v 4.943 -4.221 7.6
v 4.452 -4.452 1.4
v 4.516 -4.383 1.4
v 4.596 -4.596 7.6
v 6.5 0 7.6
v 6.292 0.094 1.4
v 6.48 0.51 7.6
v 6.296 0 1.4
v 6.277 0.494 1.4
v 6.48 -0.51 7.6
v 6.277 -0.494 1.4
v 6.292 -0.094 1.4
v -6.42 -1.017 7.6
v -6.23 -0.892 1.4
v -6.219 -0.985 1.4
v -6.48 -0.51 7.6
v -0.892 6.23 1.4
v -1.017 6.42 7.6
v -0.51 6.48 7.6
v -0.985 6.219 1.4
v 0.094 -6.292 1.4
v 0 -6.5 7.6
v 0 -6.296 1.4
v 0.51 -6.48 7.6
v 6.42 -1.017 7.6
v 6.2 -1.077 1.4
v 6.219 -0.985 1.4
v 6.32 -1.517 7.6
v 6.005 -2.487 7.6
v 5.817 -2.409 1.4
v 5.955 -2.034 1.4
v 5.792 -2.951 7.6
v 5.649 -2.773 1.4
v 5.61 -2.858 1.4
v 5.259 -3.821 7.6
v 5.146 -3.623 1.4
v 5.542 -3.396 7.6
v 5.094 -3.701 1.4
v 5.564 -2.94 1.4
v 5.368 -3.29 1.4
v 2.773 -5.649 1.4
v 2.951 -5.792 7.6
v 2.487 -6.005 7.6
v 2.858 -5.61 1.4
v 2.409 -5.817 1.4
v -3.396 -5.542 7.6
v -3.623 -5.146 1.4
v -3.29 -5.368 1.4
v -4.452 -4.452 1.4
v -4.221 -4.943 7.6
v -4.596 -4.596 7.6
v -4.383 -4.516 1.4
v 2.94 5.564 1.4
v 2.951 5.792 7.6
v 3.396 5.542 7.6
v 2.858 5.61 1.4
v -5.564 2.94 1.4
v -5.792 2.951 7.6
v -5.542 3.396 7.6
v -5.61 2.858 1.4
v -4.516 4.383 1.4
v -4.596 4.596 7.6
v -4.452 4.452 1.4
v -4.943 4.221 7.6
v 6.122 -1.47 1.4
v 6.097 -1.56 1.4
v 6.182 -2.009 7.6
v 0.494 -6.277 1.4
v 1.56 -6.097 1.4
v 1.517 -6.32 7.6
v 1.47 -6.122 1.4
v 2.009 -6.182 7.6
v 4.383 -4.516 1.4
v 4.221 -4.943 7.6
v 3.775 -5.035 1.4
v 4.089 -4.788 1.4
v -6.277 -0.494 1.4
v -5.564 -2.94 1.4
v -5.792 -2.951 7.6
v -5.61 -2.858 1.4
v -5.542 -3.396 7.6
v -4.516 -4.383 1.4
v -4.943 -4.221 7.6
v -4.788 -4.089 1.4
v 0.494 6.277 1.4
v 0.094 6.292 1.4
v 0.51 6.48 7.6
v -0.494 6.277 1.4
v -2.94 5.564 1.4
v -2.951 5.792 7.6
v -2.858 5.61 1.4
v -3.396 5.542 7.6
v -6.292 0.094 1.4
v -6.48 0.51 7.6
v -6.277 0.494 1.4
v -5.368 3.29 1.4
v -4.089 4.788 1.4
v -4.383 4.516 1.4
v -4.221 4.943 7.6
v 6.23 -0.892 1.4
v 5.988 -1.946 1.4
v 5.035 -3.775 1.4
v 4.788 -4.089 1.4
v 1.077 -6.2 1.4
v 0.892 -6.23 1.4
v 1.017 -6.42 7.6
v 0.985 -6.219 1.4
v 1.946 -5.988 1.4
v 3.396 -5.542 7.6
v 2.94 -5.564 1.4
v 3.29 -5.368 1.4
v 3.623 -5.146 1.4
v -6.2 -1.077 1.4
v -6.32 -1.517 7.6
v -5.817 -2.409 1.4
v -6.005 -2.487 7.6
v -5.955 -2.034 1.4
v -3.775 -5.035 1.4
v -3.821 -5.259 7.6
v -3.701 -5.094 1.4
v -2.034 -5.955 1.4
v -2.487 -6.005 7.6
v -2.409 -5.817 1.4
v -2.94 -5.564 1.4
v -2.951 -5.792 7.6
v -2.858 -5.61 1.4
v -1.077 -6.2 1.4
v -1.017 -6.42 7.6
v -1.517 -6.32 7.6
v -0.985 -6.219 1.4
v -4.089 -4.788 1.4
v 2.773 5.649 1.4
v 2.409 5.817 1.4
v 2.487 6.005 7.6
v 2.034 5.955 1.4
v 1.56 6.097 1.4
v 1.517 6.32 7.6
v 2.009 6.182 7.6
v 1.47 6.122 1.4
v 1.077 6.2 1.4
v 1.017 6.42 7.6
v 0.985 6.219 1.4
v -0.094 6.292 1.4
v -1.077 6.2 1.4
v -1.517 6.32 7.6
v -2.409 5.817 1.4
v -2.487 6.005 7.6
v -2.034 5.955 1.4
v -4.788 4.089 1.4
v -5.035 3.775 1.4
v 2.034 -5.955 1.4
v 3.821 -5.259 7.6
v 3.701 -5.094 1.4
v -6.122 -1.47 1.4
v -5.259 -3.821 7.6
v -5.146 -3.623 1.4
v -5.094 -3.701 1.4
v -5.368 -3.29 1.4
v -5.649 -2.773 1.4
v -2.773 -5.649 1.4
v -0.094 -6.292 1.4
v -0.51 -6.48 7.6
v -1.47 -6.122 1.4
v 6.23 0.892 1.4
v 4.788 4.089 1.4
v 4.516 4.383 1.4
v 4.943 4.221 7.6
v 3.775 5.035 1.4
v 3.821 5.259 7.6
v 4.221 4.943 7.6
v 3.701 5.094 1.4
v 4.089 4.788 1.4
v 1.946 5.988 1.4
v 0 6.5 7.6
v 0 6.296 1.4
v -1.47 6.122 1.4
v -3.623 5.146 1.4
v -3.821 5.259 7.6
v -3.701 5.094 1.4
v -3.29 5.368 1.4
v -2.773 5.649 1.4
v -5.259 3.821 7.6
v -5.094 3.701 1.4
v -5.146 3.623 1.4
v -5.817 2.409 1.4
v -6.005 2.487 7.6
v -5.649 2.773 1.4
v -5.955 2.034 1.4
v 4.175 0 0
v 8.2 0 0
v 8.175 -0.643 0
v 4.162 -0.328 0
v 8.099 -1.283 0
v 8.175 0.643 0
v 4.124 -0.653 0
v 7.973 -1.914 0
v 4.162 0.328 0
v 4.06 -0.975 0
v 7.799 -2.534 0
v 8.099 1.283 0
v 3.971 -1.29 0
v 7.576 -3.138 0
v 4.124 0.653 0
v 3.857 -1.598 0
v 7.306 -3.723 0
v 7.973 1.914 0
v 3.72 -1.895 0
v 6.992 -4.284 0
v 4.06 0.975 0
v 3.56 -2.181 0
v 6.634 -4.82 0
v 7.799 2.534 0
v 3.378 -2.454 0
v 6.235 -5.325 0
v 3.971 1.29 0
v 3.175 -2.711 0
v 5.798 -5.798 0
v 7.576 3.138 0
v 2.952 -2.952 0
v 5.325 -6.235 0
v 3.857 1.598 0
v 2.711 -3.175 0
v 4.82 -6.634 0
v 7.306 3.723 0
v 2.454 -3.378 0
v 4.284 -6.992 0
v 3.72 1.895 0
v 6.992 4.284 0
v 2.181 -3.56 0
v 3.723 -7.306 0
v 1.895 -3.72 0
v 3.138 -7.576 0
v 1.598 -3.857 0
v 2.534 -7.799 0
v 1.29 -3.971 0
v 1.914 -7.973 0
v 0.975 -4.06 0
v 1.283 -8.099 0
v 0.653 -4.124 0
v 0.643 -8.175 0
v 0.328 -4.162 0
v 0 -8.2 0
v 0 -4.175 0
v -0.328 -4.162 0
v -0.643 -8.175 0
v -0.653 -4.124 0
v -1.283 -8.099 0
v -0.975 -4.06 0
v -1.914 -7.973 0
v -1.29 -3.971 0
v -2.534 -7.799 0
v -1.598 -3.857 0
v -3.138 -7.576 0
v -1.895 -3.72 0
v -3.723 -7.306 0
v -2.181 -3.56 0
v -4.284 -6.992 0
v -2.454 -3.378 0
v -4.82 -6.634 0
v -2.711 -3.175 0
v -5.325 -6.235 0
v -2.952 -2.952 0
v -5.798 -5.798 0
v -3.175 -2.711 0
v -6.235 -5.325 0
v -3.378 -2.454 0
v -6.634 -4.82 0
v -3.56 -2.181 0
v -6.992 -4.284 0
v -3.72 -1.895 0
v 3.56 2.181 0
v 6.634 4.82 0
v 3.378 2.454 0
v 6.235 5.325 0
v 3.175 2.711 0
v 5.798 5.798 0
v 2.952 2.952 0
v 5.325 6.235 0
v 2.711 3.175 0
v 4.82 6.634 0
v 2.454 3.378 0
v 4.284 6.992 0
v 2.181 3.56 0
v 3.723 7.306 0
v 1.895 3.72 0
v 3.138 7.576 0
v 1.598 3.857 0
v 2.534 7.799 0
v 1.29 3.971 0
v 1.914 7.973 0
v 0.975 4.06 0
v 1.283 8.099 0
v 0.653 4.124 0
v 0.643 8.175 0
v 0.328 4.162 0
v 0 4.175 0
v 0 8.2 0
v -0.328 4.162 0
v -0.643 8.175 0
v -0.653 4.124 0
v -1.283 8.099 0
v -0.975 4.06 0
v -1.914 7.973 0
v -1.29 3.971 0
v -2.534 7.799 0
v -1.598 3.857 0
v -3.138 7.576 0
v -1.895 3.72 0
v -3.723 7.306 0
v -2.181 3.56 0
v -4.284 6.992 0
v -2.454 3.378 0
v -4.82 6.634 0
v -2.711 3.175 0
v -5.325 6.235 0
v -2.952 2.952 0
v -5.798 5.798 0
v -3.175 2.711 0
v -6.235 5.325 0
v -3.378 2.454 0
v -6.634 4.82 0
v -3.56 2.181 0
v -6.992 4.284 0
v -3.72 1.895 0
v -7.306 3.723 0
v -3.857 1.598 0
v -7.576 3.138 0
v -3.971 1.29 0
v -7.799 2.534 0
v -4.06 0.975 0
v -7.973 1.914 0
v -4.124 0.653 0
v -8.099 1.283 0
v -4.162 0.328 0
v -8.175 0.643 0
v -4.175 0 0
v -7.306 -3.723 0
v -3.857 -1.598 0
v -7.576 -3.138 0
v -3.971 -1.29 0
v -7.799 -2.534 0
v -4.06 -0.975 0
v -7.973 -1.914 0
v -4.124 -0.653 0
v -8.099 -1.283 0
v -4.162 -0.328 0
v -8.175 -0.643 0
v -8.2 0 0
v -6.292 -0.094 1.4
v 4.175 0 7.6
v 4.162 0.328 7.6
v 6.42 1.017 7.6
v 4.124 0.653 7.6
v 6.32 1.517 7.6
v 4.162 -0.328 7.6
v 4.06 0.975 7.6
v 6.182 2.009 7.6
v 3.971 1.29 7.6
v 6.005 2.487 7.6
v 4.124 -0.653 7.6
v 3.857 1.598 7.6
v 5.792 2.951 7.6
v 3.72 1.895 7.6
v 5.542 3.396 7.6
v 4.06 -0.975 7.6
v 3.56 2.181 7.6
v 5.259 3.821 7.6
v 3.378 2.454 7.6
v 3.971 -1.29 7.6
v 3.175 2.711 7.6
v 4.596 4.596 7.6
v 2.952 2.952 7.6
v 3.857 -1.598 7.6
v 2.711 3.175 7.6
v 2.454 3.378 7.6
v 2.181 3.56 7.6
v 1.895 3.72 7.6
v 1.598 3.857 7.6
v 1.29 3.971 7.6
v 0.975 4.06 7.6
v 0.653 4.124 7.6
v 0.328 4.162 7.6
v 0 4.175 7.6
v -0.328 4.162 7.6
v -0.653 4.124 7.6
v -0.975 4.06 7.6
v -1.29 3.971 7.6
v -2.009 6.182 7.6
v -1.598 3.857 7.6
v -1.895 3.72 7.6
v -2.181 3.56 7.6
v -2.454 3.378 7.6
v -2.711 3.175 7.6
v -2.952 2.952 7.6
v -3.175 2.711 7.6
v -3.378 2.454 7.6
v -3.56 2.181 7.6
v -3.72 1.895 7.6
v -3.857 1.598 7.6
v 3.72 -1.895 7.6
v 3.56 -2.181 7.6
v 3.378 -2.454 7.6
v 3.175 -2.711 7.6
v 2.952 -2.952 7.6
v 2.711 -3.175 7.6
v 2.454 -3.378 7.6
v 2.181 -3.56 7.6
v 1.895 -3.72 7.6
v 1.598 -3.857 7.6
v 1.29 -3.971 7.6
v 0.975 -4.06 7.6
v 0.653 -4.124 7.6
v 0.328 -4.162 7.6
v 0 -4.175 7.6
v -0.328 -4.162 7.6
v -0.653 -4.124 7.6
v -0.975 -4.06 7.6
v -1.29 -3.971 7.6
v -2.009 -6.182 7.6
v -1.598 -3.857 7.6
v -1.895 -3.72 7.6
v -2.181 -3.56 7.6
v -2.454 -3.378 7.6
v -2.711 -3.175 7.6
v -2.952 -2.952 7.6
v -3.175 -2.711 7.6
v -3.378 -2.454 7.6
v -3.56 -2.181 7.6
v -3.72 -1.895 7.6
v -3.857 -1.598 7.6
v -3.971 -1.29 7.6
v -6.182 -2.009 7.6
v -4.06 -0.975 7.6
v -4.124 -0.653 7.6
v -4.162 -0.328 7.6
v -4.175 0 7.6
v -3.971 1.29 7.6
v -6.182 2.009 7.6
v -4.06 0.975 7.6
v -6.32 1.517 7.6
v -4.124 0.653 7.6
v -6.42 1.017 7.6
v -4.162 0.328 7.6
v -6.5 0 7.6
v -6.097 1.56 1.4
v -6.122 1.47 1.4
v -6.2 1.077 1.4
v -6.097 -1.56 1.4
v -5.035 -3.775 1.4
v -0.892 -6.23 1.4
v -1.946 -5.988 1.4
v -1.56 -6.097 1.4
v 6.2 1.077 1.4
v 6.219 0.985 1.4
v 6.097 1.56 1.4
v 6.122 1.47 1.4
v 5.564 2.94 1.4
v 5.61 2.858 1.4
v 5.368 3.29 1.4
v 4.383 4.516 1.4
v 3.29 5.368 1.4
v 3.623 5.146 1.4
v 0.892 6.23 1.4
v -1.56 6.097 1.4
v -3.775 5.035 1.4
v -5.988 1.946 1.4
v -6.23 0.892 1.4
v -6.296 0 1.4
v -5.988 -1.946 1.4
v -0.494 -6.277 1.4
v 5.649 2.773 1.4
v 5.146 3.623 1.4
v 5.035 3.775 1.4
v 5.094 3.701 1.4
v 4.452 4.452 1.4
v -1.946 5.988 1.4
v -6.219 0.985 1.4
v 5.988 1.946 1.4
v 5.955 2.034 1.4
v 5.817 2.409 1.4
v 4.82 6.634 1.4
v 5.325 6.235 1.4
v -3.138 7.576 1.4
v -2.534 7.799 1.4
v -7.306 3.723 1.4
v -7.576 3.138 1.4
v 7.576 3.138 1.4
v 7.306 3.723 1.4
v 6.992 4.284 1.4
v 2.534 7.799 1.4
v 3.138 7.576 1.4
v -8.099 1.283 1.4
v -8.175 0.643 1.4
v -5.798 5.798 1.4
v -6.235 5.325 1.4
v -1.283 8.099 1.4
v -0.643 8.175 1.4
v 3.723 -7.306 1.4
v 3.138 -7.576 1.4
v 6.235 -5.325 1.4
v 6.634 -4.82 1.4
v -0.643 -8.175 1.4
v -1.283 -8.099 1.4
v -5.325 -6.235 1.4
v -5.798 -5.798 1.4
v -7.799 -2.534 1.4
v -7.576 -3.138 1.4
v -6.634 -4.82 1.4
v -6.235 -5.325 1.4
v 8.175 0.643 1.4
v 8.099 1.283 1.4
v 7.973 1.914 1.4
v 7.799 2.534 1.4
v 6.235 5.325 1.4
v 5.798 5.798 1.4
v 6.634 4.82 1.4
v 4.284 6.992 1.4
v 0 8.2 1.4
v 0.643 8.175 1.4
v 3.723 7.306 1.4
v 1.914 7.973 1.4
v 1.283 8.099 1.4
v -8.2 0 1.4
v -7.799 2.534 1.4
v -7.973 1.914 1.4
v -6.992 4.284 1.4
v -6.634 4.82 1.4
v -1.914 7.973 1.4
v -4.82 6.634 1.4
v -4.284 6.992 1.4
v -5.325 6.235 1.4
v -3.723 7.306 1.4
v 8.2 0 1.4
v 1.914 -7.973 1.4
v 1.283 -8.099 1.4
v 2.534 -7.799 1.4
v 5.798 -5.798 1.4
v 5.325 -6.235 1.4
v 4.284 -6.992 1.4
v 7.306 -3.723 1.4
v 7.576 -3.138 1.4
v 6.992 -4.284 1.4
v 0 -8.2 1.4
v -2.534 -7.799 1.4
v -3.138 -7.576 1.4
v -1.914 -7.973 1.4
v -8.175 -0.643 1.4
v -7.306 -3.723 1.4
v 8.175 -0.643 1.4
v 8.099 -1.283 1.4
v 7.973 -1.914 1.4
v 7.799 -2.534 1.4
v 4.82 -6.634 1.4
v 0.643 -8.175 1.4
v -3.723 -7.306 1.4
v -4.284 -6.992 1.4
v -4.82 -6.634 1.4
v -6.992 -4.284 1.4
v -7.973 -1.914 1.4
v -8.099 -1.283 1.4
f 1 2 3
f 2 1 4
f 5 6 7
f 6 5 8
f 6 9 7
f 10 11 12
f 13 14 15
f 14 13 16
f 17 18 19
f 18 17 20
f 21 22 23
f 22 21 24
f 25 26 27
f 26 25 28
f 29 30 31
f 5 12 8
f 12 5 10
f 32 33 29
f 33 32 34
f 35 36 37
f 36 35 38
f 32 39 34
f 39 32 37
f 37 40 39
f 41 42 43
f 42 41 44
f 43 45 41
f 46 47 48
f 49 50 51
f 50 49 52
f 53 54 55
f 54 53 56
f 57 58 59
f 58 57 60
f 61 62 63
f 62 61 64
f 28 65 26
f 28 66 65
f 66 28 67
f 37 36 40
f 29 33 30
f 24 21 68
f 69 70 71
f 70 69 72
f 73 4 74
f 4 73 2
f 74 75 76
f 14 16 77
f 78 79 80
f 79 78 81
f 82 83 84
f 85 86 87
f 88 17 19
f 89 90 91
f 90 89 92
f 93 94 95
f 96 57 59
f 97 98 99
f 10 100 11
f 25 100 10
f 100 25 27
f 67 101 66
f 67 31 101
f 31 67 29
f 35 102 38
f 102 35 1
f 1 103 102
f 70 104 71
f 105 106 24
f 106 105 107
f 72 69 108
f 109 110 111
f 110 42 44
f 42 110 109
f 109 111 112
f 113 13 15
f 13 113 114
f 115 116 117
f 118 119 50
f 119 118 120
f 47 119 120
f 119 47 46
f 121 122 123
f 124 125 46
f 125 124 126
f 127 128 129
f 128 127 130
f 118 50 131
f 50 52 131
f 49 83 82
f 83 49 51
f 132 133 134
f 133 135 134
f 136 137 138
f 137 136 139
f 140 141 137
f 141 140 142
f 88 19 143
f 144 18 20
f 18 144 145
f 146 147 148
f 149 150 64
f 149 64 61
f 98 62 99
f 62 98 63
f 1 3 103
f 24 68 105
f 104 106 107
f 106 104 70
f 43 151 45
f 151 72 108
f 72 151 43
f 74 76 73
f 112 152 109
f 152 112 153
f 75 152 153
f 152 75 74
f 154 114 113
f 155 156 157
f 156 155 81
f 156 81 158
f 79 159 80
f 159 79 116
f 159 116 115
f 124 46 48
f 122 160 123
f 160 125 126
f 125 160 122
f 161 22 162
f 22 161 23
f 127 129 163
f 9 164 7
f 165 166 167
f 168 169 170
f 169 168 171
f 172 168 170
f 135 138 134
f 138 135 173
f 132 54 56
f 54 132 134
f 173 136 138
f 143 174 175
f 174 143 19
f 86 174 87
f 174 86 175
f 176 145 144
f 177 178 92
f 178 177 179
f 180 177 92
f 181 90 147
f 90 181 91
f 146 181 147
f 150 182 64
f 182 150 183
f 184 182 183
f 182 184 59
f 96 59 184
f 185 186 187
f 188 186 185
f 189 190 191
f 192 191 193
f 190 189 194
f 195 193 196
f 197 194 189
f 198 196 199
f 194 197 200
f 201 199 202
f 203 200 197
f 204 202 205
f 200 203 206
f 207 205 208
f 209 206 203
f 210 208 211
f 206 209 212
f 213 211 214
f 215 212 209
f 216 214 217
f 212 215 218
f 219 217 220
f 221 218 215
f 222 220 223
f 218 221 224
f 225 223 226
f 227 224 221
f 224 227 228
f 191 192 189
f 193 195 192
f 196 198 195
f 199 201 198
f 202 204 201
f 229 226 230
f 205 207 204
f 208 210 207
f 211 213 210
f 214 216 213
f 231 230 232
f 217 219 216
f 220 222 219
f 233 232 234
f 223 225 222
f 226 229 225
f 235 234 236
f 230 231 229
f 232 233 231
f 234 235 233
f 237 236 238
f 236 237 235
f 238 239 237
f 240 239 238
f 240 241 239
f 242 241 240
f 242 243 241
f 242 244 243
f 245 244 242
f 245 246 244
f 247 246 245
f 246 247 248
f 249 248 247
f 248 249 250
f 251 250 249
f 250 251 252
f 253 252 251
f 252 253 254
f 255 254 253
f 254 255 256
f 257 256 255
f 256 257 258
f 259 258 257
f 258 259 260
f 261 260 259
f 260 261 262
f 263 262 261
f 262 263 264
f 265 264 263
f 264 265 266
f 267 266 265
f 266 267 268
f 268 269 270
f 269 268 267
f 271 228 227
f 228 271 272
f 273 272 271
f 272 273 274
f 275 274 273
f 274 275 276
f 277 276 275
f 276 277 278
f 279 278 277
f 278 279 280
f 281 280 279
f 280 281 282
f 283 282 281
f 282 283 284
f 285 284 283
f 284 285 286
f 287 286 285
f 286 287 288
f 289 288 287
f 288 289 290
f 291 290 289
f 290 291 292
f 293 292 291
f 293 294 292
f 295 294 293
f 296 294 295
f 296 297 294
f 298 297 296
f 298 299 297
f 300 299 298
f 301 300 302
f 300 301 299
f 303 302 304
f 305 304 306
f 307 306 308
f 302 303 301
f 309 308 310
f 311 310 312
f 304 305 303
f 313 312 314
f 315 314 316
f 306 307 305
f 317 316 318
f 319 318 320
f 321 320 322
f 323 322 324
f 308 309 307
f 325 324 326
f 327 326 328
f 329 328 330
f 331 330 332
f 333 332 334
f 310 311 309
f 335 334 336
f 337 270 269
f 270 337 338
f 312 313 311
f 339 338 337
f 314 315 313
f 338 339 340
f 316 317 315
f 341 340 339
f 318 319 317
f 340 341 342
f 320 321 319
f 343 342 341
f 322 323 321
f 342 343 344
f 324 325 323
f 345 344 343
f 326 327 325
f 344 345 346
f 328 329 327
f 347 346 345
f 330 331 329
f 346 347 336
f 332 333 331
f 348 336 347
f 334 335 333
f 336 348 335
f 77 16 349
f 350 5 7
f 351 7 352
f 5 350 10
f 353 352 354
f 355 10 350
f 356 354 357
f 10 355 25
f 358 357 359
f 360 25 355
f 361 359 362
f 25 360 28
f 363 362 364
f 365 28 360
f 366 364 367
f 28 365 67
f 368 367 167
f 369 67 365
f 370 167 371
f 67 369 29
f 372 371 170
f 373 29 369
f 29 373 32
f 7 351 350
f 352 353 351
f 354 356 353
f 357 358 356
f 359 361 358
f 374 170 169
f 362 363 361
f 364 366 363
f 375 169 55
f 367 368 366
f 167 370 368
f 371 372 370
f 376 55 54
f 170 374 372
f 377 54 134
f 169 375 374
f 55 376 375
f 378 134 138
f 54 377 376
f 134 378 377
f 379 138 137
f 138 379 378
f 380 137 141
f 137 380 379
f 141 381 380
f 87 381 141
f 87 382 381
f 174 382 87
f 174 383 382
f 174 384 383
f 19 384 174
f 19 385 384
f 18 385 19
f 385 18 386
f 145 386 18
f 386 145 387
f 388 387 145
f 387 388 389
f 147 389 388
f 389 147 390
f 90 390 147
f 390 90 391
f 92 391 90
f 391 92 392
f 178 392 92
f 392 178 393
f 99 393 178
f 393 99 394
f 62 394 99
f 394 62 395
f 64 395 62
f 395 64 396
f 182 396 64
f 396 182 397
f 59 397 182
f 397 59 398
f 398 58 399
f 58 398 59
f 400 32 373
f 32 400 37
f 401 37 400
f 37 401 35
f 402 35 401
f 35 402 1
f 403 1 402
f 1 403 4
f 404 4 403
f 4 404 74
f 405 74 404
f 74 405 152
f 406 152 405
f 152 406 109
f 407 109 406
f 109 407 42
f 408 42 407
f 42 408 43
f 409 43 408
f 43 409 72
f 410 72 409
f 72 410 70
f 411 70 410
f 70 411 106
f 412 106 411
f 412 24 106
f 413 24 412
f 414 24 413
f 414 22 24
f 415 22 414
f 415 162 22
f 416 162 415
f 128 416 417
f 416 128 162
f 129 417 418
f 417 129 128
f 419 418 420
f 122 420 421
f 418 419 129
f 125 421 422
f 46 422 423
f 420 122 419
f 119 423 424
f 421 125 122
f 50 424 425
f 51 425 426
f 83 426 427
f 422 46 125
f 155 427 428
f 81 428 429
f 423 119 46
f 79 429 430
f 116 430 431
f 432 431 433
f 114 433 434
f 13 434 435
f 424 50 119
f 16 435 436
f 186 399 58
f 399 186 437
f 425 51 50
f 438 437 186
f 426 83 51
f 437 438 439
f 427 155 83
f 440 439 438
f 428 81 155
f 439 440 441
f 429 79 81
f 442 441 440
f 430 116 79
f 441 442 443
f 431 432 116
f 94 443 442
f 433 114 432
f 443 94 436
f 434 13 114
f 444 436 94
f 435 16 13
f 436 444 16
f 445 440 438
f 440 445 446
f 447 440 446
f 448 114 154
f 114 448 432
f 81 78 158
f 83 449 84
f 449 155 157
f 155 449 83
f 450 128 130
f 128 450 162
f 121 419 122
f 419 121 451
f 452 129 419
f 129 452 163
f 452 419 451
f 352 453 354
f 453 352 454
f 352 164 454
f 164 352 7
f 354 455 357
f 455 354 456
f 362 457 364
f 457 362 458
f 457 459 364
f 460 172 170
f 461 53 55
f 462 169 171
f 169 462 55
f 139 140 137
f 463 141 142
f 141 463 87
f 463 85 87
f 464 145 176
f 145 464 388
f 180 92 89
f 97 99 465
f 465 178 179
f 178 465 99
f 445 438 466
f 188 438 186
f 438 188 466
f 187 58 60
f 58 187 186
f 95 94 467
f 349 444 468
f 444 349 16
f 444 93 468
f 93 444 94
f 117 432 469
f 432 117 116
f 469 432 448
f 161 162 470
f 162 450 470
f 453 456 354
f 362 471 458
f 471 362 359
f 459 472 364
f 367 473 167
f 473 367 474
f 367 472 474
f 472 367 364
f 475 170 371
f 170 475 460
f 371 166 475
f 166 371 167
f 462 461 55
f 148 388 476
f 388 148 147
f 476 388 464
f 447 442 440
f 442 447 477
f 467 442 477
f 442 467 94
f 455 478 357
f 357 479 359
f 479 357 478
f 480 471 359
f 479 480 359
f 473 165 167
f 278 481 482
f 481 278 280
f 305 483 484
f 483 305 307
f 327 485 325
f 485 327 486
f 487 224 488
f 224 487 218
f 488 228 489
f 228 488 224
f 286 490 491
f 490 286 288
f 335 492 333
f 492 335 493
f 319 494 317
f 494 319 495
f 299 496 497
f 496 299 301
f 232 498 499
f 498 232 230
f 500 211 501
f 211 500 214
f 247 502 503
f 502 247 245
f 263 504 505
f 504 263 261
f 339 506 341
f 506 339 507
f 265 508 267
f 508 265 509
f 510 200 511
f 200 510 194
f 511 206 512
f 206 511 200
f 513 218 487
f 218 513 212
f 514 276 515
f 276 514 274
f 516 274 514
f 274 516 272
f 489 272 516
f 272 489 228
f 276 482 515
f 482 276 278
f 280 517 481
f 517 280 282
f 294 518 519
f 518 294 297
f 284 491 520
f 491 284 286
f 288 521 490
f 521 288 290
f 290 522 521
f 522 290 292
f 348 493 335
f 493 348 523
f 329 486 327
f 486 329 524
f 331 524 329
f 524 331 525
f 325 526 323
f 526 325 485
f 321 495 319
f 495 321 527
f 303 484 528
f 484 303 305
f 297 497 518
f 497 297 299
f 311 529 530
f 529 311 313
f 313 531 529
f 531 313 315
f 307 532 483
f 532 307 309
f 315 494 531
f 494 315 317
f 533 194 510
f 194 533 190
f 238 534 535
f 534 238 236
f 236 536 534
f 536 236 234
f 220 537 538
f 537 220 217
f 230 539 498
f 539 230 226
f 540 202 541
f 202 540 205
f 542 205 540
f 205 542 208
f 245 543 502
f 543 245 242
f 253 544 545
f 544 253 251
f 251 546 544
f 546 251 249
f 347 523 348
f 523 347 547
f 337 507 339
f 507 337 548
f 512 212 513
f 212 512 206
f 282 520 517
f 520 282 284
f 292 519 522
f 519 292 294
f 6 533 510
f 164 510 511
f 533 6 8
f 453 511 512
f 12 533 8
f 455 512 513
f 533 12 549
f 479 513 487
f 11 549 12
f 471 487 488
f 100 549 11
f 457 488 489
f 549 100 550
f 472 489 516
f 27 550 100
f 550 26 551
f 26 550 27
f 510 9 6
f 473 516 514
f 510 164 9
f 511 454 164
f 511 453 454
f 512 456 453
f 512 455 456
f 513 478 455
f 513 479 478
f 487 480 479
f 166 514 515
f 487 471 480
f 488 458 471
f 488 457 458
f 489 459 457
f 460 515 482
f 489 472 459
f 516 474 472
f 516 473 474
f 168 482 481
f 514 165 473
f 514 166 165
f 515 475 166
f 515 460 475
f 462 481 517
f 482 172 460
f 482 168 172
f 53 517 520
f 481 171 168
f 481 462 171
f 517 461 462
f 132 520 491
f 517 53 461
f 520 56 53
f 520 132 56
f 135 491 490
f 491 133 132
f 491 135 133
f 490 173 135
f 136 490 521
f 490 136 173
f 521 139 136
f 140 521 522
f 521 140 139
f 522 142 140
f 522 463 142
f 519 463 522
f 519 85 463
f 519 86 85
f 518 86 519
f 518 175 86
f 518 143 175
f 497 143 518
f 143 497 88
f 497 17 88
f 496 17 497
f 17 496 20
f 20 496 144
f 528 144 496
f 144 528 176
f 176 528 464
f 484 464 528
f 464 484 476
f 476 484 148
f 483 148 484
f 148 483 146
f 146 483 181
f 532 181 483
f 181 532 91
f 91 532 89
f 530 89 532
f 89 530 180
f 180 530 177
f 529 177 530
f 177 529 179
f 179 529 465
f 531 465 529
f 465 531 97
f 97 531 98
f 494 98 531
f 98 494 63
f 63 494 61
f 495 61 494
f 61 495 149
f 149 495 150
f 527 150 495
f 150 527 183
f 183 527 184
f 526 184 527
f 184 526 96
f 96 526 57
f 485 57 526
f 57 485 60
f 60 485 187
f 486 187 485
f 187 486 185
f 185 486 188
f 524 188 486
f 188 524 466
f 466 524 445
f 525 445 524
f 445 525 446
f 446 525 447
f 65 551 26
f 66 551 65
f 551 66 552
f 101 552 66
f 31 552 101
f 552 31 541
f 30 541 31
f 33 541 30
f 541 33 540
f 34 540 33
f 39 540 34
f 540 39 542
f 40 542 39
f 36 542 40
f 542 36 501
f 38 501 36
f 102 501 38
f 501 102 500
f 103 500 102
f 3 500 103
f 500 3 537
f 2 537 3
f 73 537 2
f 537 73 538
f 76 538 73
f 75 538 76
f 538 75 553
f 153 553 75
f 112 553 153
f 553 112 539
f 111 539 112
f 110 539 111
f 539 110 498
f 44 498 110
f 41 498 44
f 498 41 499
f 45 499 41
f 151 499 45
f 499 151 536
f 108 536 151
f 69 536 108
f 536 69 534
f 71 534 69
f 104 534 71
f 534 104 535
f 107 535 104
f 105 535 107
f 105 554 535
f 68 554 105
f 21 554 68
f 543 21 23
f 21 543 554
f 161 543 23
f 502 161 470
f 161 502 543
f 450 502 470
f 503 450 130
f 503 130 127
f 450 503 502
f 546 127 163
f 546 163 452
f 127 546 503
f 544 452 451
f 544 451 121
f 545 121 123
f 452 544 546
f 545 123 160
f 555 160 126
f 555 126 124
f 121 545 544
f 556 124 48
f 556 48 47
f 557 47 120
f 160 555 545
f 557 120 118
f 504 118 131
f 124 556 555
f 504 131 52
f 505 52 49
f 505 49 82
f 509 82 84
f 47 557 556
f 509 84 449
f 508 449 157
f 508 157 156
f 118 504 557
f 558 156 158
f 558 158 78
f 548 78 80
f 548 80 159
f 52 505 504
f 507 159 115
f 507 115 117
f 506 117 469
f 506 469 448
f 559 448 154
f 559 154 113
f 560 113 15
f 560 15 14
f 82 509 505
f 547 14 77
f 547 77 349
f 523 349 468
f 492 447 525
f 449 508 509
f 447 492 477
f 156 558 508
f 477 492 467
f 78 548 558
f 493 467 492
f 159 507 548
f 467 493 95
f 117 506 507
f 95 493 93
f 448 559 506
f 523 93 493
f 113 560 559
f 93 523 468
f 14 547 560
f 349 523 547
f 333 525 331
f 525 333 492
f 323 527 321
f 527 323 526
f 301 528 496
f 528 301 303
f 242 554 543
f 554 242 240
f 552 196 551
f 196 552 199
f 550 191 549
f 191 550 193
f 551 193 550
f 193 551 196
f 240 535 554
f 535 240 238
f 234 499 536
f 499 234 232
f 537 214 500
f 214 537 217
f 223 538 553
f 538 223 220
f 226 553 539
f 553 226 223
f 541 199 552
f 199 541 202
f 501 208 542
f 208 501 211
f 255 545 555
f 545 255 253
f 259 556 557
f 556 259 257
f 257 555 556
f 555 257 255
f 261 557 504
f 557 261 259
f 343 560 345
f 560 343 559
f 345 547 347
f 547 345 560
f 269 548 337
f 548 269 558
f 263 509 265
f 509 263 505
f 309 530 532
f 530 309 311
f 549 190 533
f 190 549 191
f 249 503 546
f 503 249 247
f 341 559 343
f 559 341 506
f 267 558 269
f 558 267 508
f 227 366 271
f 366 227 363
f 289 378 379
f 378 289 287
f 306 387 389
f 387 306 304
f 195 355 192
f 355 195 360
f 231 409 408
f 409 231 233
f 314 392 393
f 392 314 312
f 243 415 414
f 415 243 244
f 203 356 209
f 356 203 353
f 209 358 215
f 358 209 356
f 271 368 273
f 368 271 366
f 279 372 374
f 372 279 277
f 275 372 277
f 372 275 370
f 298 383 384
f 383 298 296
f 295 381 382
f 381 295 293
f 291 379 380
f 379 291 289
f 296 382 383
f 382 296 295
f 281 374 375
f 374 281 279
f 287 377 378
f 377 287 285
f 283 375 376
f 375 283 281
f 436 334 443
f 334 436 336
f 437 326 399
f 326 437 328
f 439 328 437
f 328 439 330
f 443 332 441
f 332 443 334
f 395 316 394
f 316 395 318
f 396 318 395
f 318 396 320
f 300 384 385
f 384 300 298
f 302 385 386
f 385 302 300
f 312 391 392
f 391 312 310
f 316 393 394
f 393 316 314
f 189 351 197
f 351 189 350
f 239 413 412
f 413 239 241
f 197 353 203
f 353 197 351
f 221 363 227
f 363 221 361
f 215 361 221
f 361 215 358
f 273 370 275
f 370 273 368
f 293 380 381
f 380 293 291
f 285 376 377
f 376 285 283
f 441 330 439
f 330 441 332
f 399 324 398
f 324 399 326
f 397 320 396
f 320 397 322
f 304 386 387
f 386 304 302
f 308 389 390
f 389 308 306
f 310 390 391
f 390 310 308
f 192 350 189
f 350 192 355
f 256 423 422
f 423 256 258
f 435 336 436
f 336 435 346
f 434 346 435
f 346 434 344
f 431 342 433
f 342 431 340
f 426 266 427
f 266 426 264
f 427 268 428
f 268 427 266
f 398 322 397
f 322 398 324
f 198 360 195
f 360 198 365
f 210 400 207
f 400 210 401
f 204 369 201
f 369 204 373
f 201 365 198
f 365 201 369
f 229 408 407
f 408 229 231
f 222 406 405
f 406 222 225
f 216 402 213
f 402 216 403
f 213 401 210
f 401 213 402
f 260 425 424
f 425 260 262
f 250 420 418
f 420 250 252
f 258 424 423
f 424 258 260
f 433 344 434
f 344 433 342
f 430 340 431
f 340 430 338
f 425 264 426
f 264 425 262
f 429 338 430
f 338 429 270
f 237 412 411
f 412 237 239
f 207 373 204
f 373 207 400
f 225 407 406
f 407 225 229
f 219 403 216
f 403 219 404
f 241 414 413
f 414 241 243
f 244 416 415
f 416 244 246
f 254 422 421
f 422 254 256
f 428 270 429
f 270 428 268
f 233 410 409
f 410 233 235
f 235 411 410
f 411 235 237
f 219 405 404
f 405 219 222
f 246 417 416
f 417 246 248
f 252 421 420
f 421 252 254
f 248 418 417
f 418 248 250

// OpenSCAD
//Press fit on outer, clearance fit on inner

$fn=80;

difference()
{
    union()
    {
        cylinder(d1=12.5, d2=13, h=7.6);
        
        cylinder(d=16.4, h=1.4);
        
    }
    
    translate([0,0,-1])
    cylinder(d=8.35, h=10);
}
